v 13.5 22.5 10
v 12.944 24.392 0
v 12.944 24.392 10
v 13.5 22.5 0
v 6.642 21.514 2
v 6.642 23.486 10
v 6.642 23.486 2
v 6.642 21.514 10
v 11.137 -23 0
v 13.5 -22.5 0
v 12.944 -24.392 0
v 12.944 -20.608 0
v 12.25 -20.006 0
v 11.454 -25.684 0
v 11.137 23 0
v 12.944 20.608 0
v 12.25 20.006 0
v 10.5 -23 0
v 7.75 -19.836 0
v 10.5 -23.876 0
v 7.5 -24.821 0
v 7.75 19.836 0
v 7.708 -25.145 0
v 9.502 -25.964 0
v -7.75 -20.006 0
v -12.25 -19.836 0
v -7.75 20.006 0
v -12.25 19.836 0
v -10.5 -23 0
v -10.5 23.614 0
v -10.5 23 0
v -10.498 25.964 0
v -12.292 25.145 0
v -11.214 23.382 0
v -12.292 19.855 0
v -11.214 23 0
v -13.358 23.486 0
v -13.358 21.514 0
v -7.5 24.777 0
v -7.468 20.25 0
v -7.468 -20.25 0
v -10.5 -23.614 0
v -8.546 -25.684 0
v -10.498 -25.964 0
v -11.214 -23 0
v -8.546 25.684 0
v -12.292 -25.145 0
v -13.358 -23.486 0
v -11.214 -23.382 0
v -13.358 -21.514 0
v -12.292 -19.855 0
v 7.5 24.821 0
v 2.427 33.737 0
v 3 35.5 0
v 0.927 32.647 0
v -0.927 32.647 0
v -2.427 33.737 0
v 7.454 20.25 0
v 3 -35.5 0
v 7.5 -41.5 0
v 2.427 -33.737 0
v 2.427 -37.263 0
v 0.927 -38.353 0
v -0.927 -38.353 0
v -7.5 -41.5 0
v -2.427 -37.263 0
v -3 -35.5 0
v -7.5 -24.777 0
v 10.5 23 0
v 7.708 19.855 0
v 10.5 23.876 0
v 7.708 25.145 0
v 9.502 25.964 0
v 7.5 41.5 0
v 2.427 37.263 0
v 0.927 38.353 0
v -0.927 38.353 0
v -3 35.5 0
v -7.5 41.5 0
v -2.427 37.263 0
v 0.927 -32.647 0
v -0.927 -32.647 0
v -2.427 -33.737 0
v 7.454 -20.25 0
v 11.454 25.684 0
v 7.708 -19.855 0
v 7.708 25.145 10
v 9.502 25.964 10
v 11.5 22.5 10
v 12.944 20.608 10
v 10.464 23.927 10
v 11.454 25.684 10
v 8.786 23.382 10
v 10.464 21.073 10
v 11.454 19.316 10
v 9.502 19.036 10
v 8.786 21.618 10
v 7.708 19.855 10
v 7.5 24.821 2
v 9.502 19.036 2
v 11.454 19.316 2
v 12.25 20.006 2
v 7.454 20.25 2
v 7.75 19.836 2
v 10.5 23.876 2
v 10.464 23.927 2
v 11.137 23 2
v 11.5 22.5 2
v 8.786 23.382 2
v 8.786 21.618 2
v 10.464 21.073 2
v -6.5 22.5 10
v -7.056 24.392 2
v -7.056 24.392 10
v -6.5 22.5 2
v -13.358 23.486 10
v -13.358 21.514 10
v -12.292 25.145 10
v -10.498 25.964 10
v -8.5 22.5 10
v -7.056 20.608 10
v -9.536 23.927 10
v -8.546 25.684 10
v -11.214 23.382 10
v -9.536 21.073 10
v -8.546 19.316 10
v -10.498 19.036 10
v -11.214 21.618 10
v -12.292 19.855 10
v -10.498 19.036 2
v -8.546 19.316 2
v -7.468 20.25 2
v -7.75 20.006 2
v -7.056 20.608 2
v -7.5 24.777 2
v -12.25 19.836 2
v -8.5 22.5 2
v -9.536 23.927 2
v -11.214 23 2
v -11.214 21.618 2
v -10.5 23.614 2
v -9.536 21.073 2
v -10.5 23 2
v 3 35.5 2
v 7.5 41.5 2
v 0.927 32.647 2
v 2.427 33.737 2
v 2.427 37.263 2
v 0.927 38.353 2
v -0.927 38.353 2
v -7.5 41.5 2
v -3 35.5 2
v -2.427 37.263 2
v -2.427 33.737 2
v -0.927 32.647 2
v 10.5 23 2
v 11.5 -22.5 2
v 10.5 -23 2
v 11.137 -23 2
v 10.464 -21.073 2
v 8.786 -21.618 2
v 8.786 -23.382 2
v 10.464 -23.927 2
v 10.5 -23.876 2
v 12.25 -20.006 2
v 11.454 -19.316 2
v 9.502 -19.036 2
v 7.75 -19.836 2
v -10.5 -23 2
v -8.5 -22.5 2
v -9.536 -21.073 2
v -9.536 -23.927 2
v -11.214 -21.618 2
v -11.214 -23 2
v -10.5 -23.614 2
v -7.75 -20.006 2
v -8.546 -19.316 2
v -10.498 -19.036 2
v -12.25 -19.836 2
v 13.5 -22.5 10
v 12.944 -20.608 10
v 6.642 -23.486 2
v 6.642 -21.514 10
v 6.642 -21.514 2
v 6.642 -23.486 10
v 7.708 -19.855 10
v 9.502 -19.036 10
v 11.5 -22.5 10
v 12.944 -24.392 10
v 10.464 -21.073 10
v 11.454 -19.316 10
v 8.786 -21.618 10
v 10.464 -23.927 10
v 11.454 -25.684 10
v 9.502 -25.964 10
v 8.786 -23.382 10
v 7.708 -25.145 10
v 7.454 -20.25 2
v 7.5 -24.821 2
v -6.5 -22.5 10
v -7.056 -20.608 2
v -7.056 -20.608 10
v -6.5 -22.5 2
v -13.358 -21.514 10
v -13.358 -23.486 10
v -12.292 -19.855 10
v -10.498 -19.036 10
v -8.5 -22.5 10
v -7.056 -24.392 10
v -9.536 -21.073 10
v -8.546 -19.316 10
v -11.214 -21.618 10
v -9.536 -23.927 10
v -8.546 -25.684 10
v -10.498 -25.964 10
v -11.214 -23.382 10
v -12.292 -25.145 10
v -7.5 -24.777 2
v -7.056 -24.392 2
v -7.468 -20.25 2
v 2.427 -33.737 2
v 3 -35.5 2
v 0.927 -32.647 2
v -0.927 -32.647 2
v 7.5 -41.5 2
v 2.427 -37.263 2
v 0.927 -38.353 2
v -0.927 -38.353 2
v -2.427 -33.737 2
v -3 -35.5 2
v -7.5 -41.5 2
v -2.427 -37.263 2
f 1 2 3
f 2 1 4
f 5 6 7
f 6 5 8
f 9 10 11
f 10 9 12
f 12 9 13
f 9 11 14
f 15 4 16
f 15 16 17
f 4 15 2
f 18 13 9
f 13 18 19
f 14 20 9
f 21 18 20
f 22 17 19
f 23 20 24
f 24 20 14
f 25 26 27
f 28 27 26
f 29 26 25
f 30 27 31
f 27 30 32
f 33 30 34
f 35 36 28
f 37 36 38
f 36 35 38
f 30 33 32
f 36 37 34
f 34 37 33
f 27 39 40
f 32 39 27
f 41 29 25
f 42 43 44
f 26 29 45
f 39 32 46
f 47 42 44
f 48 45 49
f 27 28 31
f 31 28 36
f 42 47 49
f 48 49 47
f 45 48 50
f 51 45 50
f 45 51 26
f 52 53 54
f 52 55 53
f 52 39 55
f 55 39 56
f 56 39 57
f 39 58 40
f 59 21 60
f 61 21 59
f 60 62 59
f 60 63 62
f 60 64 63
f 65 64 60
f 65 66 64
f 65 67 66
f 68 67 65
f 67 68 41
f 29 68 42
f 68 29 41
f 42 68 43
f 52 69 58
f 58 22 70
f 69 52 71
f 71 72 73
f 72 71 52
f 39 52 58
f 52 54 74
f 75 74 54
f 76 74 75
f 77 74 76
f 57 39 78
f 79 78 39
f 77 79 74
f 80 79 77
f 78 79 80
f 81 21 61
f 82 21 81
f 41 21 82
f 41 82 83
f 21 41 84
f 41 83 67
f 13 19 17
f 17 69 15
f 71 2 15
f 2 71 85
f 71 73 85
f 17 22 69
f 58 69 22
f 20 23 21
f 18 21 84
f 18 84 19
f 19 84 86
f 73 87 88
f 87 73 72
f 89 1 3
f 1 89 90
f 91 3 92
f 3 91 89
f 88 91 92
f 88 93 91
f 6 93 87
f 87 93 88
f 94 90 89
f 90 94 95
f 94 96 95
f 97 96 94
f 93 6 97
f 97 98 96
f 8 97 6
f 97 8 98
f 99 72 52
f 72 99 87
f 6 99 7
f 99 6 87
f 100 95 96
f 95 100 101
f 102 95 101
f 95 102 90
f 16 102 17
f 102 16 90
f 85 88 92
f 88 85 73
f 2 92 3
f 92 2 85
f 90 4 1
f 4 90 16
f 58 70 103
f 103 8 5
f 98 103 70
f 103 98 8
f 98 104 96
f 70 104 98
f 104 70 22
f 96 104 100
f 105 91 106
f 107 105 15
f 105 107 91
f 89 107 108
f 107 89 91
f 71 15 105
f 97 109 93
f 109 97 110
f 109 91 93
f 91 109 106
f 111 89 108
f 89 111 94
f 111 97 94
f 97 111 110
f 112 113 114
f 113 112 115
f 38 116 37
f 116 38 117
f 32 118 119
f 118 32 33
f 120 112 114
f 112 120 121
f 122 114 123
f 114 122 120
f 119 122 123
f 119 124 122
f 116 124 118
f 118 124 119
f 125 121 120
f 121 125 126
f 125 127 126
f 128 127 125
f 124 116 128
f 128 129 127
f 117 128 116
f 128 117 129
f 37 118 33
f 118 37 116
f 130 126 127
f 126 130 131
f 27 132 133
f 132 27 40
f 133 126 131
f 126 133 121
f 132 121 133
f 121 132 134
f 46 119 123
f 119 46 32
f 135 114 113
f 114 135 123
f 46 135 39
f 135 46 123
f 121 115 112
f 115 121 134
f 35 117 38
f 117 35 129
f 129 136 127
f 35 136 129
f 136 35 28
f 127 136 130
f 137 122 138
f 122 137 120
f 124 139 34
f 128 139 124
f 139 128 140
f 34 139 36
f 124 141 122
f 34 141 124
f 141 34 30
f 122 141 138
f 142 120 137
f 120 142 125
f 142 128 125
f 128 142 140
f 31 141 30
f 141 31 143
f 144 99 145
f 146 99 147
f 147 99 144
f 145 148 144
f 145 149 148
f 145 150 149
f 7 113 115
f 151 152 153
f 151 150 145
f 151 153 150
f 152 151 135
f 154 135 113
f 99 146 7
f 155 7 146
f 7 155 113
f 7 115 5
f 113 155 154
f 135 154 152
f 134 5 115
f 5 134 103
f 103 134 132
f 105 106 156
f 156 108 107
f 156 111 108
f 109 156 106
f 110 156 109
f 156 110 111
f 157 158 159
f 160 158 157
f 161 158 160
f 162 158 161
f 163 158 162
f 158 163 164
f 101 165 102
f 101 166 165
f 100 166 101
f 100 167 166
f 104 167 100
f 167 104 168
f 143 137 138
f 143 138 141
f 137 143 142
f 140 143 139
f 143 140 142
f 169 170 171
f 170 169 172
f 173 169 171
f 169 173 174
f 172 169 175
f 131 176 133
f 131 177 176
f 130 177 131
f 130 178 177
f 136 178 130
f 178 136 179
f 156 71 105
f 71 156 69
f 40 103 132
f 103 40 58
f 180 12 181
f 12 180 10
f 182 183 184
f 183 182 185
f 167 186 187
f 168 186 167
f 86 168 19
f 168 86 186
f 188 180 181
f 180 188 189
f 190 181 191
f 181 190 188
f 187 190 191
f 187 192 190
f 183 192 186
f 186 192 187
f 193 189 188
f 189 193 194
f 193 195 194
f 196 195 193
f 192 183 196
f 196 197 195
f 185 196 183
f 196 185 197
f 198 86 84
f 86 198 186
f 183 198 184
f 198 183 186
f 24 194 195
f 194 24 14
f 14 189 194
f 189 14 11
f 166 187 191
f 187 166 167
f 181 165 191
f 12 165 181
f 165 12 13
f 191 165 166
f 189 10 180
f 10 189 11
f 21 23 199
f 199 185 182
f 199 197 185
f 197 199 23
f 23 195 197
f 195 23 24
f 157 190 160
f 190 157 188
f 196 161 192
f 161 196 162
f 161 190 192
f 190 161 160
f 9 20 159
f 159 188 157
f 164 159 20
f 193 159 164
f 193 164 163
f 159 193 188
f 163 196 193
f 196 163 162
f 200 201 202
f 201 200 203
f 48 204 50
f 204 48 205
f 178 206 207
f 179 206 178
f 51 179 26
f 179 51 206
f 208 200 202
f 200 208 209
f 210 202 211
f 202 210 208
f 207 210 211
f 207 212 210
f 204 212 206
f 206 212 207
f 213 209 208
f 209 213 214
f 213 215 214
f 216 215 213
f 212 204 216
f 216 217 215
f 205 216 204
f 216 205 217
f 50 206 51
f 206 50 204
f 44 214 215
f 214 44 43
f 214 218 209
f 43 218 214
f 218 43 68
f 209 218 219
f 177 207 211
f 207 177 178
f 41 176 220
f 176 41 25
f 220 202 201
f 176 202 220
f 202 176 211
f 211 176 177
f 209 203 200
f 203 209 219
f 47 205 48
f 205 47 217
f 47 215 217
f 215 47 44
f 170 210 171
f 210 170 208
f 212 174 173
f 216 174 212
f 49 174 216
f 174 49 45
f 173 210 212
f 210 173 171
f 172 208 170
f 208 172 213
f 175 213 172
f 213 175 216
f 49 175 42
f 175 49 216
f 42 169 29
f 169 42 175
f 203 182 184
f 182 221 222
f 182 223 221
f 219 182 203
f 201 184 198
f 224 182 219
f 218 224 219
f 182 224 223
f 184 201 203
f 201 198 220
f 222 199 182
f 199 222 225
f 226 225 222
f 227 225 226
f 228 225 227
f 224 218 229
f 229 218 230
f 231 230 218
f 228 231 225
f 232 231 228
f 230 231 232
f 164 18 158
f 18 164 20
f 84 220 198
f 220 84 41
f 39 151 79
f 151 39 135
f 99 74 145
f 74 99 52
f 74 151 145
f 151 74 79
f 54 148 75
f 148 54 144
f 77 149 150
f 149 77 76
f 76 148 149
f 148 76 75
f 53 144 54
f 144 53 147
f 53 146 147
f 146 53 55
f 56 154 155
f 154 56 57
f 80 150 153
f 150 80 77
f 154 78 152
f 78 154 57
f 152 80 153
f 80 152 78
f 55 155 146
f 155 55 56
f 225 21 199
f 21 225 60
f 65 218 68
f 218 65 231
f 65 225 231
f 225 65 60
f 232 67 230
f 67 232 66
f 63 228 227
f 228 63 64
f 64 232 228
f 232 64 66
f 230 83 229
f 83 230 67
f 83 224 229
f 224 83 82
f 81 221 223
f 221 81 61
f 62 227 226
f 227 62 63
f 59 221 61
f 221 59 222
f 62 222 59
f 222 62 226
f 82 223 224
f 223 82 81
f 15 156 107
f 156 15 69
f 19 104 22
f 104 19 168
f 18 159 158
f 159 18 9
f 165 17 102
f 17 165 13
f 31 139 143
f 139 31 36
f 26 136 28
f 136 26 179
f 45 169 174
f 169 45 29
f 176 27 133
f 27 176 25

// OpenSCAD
union() {
	translate(v = [0, 22.5000000000, 0]) {
		union() {
			translate(v = [0, 0, 1.0000000000]) {
				cube(center = true, size = [21.0000000000, 4.5000000000, 2]);
			}
			translate(v = [10.0000000000, 0, 0]) {
				difference() {
					cylinder(d = 7, h = 10);
					translate(v = [0, 0, -10]) {
						cylinder(d = 3, h = 20);
					}
				}
			}
			translate(v = [-10.0000000000, 0, 0]) {
				difference() {
					cylinder(d = 7, h = 10);
					translate(v = [0, 0, -10]) {
						cylinder(d = 3, h = 20);
					}
				}
			}
		}
	}
	translate(v = [0, -22.5000000000, 0]) {
		union() {
			translate(v = [0, 0, 1.0000000000]) {
				cube(center = true, size = [21.0000000000, 4.5000000000, 2]);
			}
			translate(v = [10.0000000000, 0, 0]) {
				difference() {
					cylinder(d = 7, h = 10);
					translate(v = [0, 0, -10]) {
						cylinder(d = 3, h = 20);
					}
				}
			}
			translate(v = [-10.0000000000, 0, 0]) {
				difference() {
					cylinder(d = 7, h = 10);
					translate(v = [0, 0, -10]) {
						cylinder(d = 3, h = 20);
					}
				}
			}
		}
	}
	translate(v = [10.0000000000, 0, 0]) {
		rotate(a = [0, 0, 90]) {
			translate(v = [0, 0, 1.0000000000]) {
				cube(center = true, size = [46.0000000000, 4.5000000000, 2]);
			}
		}
	}
	translate(v = [-10.0000000000, 0, 0]) {
		rotate(a = [0, 0, 90]) {
			translate(v = [0, 0, 1.0000000000]) {
				cube(center = true, size = [46.0000000000, 4.5000000000, 2]);
			}
		}
	}
	translate(v = [0, 31.5000000000, 0]) {
		difference() {
			translate(v = [0, 0, 1.0000000000]) {
				cube(center = true, size = [15, 20, 2]);
			}
			translate(v = [0, 4.0000000000, 0]) {
				cylinder(d = 6, h = 20);
			}
		}
	}
	translate(v = [0, -31.5000000000, 0]) {
		rotate(a = [0, 0, 180]) {
			difference() {
				translate(v = [0, 0, 1.0000000000]) {
					cube(center = true, size = [15, 20, 2]);
				}
				translate(v = [0, 4.0000000000, 0]) {
					cylinder(d = 6, h = 20);
				}
			}
		}
	}
}
